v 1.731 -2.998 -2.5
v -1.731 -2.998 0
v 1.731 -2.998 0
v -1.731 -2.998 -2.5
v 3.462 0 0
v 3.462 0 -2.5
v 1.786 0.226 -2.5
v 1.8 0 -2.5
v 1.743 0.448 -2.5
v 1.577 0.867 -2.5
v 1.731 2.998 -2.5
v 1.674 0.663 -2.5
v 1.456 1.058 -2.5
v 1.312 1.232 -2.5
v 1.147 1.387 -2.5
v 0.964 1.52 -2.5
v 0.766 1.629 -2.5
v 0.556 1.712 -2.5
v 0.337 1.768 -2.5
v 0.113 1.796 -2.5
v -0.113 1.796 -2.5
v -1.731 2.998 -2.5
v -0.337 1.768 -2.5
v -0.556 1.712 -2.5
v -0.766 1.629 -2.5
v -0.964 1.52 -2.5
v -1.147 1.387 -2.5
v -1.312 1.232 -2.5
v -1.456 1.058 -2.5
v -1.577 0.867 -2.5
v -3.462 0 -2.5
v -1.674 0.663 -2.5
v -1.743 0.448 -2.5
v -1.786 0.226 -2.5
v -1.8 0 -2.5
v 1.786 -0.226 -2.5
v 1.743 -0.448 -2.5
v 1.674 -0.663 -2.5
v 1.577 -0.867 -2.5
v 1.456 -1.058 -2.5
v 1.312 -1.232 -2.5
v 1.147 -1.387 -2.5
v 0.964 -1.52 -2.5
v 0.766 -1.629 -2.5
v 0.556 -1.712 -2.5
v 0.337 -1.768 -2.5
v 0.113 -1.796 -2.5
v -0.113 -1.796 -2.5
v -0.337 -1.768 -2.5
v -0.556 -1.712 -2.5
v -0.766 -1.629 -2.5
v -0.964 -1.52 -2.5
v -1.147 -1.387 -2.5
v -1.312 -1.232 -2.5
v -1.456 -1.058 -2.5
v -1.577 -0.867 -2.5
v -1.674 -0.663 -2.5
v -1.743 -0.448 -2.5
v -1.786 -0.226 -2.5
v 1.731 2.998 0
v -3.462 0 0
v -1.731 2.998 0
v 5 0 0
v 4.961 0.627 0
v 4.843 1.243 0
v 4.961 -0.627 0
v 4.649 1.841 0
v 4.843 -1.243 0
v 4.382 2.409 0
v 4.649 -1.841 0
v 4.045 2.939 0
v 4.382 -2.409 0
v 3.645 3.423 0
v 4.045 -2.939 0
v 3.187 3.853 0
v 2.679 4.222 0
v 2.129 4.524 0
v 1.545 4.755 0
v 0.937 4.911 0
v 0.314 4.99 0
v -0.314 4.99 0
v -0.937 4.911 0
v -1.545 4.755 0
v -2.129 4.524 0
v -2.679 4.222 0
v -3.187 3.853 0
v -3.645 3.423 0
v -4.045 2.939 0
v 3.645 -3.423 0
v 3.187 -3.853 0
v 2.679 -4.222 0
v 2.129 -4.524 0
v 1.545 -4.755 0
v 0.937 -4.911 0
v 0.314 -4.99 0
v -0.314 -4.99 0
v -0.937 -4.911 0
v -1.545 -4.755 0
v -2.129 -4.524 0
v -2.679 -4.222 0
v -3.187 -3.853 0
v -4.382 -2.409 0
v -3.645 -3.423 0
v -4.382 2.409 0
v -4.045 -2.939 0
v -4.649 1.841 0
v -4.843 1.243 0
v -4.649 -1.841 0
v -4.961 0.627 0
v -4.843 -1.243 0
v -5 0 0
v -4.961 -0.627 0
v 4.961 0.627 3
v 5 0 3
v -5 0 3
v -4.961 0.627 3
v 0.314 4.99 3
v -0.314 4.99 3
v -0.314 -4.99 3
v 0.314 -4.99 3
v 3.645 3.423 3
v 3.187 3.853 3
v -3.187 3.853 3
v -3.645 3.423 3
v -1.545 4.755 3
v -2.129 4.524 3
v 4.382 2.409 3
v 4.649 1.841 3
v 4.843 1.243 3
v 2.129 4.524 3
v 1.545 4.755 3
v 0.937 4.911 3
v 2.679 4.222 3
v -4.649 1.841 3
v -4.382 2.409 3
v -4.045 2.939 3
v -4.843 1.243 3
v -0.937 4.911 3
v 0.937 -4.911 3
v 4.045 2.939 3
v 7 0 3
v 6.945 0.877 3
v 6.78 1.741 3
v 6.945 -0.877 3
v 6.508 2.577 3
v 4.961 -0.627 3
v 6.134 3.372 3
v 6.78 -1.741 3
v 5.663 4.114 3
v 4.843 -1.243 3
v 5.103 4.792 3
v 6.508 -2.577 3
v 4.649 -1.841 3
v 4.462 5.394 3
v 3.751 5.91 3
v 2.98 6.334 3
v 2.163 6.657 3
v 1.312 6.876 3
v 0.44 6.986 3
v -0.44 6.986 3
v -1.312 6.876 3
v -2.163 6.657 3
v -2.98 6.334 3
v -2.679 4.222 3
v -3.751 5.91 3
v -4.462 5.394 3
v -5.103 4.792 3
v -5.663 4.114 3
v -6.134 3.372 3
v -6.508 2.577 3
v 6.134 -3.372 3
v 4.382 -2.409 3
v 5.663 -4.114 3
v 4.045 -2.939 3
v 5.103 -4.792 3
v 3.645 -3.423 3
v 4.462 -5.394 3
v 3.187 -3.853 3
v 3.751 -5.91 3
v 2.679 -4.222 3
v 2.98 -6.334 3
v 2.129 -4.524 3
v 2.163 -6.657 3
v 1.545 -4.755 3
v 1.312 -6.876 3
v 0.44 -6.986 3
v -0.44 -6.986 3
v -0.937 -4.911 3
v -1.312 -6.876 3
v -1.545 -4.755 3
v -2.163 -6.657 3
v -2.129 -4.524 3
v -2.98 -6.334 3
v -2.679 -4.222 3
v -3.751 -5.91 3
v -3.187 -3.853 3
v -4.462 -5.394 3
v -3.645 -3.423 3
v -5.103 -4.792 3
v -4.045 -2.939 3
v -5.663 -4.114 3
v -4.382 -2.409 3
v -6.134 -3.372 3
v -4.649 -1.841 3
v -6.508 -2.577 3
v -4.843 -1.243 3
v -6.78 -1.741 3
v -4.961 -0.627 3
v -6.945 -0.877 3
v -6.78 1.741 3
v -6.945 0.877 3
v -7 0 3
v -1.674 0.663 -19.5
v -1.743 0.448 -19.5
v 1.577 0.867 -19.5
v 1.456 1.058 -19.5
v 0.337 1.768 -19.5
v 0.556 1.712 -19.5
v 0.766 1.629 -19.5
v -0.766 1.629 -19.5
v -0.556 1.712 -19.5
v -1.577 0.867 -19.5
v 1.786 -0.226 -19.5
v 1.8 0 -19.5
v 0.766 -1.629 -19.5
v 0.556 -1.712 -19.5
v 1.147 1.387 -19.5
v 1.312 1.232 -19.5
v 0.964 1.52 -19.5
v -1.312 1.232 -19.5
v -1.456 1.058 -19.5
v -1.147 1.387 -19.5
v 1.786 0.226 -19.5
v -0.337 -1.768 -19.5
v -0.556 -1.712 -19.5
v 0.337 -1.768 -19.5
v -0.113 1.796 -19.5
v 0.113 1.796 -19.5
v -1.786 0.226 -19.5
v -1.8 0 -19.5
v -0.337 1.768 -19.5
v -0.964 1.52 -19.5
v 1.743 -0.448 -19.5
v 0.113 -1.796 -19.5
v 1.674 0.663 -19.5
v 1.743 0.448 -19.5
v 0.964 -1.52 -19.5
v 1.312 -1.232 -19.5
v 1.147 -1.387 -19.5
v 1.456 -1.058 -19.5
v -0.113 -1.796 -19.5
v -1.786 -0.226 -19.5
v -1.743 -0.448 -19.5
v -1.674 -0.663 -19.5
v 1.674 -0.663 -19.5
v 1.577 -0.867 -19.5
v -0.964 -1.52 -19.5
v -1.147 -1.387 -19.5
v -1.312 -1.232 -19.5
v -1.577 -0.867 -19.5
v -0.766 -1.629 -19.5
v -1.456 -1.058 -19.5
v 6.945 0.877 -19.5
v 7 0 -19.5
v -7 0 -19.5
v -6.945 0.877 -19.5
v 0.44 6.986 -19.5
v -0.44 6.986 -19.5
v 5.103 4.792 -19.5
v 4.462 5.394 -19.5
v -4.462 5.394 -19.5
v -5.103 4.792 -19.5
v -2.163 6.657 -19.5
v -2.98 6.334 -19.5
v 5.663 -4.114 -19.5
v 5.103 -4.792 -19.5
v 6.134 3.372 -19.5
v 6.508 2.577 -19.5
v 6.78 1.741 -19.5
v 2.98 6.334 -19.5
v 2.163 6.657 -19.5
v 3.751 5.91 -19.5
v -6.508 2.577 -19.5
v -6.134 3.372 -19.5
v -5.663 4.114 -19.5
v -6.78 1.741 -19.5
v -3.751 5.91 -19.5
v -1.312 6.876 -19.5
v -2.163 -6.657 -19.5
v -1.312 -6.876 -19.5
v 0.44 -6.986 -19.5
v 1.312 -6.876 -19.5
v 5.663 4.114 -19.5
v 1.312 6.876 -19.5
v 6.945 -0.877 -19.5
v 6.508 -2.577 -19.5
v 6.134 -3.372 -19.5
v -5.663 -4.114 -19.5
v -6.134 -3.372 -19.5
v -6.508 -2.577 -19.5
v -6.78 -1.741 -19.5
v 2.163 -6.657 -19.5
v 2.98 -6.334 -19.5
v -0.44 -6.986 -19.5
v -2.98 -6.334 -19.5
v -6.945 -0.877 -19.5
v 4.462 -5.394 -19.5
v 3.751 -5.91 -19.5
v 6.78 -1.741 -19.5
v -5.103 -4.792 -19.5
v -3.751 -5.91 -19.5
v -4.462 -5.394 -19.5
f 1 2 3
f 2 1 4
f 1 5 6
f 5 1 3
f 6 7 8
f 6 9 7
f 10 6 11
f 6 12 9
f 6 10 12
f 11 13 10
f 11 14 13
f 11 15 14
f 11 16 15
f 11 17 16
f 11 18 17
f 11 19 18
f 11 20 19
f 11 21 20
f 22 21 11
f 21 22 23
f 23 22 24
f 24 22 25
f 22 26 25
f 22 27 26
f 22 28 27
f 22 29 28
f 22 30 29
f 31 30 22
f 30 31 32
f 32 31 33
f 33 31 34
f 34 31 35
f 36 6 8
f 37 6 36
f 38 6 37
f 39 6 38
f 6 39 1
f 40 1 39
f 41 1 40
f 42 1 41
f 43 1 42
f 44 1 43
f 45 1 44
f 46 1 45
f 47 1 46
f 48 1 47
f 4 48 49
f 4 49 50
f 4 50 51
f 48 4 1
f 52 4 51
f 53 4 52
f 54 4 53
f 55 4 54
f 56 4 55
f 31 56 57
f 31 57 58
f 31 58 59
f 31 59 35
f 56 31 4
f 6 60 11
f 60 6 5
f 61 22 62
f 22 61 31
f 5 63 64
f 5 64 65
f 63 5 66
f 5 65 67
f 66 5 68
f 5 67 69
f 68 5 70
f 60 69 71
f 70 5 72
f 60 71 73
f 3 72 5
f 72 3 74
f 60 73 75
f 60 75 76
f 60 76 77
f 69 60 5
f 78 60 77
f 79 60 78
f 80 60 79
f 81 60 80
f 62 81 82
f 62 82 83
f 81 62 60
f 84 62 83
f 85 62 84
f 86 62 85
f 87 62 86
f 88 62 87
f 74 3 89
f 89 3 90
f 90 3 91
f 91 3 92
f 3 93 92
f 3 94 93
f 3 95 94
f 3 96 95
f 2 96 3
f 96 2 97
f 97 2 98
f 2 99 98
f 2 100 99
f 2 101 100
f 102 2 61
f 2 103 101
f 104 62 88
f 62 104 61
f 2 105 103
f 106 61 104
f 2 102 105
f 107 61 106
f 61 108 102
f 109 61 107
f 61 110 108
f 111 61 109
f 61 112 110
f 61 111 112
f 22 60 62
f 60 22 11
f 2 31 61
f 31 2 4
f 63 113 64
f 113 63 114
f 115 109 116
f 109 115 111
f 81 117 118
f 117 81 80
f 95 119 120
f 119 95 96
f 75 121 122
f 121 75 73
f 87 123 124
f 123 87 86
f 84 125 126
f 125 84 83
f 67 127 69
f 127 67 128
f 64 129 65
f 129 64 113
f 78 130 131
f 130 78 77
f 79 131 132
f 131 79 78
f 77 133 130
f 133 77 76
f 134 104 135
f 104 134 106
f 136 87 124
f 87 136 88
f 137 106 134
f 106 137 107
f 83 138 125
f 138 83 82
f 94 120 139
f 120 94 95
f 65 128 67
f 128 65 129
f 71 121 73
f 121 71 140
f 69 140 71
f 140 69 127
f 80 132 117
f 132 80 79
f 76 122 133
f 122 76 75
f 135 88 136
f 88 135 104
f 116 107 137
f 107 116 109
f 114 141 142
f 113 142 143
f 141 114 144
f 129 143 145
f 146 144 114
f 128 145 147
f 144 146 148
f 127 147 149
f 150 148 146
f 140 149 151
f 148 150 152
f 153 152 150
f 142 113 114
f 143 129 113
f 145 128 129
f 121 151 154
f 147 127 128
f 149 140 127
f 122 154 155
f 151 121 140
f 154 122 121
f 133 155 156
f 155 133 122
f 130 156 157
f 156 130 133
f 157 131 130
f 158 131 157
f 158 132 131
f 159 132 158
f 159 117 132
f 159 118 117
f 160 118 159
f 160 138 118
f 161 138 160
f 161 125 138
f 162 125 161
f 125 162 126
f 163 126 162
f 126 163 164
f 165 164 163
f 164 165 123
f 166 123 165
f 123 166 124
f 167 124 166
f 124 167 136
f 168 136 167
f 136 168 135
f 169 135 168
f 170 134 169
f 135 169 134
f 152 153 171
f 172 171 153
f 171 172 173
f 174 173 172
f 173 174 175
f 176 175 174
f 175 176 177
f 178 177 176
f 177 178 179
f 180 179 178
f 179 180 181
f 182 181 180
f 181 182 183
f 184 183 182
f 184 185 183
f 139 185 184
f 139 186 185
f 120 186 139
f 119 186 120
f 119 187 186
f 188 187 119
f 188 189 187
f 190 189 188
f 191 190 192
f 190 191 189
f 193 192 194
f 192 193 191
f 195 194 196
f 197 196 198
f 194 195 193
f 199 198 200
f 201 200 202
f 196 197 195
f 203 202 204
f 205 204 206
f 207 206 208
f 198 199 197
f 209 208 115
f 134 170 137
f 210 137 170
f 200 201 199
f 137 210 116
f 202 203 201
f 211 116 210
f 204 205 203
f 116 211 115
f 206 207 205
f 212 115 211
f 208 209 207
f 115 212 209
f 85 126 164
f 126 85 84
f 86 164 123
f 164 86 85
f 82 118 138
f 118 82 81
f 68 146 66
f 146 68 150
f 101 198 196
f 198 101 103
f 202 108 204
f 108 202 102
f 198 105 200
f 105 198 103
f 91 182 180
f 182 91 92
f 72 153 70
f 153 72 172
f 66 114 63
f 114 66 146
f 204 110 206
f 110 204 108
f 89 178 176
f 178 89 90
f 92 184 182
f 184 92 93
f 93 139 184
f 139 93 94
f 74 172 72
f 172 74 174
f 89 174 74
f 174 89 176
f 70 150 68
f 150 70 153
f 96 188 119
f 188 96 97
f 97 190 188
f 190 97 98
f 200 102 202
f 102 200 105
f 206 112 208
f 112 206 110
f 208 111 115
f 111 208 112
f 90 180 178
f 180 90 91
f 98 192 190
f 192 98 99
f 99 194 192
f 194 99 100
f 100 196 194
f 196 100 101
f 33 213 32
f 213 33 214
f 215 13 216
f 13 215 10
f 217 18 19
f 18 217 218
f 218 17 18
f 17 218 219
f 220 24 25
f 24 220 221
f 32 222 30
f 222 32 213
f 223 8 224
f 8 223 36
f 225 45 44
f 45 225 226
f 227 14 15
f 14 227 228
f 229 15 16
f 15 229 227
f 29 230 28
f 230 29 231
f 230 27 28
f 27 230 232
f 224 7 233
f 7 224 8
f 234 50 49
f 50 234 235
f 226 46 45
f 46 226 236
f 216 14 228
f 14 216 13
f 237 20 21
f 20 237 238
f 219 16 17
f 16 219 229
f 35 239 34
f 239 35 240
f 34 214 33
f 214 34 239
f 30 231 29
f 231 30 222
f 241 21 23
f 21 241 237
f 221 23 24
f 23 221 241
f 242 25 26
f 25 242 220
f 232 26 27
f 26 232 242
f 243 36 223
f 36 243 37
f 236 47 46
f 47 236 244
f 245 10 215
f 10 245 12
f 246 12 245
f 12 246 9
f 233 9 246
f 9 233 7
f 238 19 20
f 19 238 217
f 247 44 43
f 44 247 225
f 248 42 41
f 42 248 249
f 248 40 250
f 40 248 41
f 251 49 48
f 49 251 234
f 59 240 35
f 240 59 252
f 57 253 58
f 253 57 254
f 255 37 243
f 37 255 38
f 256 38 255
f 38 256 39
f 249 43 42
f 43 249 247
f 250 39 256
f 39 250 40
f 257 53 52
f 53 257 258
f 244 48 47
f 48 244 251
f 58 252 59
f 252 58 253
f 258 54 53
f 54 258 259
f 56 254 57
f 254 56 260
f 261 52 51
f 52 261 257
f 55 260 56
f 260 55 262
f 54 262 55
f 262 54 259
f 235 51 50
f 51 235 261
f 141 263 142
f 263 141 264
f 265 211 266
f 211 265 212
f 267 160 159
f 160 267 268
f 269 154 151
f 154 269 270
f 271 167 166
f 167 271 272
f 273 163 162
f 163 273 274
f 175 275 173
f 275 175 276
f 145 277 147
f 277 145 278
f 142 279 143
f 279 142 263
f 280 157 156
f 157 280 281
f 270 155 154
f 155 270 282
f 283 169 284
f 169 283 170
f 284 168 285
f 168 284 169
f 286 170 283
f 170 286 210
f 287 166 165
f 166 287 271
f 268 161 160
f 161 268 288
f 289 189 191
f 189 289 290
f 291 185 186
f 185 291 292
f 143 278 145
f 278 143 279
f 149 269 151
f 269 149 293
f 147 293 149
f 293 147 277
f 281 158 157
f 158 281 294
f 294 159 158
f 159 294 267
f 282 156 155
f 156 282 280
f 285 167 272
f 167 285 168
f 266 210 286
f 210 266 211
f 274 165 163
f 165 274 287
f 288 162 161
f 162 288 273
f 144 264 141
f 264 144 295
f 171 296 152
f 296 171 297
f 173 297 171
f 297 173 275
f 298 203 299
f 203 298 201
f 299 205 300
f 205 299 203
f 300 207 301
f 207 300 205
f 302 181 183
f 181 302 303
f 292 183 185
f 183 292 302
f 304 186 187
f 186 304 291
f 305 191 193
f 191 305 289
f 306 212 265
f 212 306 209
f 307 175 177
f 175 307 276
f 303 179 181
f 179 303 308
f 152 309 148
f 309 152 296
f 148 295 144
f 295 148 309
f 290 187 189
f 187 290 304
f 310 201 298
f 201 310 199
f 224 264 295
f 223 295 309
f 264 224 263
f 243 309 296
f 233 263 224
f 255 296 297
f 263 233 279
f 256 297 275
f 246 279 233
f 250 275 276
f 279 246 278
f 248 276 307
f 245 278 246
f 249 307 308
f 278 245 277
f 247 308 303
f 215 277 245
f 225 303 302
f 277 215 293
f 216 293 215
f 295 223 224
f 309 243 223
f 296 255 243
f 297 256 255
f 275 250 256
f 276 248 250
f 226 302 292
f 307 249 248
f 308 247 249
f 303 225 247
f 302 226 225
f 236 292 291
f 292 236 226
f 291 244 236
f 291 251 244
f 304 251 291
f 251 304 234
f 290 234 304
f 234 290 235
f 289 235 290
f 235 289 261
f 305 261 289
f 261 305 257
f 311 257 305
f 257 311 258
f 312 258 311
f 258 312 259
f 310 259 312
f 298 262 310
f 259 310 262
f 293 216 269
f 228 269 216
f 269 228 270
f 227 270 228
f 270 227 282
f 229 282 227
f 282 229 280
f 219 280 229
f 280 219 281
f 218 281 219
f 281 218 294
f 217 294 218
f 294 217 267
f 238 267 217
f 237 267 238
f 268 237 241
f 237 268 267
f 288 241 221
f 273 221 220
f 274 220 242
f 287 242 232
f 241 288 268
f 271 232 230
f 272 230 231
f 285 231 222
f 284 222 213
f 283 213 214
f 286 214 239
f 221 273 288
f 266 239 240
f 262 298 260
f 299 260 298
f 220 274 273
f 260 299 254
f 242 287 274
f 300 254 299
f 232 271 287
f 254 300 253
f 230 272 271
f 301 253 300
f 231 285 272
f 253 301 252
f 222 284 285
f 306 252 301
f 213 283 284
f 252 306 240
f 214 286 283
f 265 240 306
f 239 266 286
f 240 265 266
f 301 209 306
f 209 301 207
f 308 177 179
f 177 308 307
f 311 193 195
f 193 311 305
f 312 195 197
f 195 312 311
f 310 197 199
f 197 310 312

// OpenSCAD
$fn = 50;

difference() {
	union() {
		translate(v = [0, 0, -19.5]) {
			cylinder(h = 22.5, r = 7.0);
		}
	}
	union() {
		translate(v = [0, 0, 0]) {
			rotate(a = [0, 0, 0]) {
				difference() {
					union() {
						translate(v = [0, 0, -2.5]) {
							linear_extrude(height = 2.5) {
								polygon(points = [[3.4619999999999997, 0.0], [1.7310000000000003, 2.9981799479017264], [-1.7309999999999992, 2.9981799479017264], [-3.4619999999999997, 4.2397272186481365e-16], [-1.7310000000000014, -2.998179947901726], [1.7309999999999977, -2.9981799479017277]]);
							}
						}
					}
					union();
				}
			}
		}
		#cylinder(h = 3, r = 5.0);
		#translate(v = [0, 0, -100.0]) {
			cylinder(h = 200, r = 1.8);
		}
	}
}
